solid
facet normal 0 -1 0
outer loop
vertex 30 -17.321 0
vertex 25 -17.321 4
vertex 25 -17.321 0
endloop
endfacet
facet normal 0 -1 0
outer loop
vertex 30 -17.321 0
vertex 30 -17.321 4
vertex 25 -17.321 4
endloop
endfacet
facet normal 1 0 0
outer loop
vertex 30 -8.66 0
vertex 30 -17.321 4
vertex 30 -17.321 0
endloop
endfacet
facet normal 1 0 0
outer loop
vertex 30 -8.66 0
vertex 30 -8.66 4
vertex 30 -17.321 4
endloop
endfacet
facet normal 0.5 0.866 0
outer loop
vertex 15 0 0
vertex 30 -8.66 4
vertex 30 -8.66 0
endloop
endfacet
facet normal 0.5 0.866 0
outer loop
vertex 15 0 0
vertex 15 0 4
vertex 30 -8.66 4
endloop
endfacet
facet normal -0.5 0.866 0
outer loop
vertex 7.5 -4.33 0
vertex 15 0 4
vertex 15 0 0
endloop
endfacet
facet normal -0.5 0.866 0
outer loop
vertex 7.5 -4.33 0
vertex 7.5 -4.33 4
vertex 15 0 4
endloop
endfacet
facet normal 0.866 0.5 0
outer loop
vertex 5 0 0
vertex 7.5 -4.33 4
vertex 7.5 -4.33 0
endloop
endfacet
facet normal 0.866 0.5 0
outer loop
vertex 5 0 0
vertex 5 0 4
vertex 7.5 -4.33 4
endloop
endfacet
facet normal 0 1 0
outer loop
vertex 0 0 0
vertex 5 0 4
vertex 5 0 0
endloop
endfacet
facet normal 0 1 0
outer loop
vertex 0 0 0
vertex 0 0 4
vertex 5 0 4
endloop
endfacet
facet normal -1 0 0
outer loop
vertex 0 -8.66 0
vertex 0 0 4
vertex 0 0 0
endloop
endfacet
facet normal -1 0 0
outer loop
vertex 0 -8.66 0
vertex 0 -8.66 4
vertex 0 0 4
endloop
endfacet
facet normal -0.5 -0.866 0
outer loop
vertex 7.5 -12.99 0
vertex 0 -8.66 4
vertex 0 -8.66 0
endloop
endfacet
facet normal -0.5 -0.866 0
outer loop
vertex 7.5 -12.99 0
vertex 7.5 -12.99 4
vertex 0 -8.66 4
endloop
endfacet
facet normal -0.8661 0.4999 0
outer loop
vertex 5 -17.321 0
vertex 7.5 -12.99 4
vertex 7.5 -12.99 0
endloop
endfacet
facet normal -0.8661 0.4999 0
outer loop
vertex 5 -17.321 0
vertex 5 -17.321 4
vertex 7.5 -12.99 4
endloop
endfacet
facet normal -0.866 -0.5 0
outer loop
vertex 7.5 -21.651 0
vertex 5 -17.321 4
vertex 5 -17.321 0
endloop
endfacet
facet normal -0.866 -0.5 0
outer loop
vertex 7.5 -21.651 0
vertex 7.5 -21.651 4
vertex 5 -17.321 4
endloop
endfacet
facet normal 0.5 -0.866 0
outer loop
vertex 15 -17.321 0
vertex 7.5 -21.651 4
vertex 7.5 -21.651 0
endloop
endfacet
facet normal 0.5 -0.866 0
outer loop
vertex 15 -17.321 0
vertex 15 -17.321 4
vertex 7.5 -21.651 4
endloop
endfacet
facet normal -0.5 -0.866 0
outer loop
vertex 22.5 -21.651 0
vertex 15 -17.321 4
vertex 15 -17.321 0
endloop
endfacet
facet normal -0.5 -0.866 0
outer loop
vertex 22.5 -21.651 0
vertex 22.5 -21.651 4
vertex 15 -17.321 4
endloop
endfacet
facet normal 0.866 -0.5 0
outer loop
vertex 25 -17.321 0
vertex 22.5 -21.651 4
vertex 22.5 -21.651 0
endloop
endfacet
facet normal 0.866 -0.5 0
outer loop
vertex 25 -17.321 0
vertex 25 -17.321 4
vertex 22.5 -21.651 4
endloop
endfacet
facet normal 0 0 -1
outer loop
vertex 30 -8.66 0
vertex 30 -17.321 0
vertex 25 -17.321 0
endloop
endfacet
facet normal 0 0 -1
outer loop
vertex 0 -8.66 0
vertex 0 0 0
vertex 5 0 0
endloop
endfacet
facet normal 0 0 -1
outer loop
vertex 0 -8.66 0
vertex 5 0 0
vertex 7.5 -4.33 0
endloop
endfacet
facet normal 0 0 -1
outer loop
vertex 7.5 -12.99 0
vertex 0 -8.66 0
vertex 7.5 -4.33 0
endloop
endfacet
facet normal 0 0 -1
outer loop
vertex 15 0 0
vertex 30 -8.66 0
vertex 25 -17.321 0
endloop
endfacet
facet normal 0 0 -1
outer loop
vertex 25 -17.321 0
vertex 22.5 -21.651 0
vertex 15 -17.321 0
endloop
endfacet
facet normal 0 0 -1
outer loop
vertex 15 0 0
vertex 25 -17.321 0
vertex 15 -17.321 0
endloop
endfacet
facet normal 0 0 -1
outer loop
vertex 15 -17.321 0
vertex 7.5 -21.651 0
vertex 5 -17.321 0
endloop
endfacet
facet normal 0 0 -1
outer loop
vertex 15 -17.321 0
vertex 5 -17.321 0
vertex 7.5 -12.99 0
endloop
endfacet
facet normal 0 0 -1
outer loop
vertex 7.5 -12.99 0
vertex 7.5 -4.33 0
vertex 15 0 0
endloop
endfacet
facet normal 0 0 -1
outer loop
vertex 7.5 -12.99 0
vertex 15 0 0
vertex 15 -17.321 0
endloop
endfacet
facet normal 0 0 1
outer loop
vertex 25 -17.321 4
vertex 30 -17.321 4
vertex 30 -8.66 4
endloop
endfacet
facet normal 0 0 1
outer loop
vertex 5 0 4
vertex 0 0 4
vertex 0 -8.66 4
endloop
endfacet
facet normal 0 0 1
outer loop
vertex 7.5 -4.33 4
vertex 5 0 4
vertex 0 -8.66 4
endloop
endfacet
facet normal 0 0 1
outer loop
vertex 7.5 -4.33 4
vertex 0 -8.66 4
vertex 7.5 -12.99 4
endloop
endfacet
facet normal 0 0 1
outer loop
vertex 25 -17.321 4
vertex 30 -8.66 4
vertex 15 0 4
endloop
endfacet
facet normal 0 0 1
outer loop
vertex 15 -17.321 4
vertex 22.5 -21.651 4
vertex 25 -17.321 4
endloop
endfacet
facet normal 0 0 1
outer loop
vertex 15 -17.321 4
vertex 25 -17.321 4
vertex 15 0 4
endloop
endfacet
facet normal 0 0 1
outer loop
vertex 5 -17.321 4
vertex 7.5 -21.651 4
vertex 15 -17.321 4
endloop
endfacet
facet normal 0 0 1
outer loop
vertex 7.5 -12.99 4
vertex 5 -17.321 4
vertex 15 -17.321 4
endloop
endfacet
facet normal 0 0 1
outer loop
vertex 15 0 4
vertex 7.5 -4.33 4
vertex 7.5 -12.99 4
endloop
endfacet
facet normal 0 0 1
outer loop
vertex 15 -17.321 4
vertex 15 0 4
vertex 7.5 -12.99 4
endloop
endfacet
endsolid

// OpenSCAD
r = [1,0];
d = [cos(60),-sin(60)];

points = [
    [0,0],
    r,
    r + d,
    3*r,
    5*r + 2*d,
    4*r + 4*d,
    3*r + 4*d,
    2*r + 5*d,
    r + 4*d,
    -r + 5*d,
    -r + 4*d,
    3*d,
    -r + 2*d,
 ];
 
 module tile() {
     linear_extrude(4) {
         scale(5) polygon(points);
     }
 }
 
 tile();
